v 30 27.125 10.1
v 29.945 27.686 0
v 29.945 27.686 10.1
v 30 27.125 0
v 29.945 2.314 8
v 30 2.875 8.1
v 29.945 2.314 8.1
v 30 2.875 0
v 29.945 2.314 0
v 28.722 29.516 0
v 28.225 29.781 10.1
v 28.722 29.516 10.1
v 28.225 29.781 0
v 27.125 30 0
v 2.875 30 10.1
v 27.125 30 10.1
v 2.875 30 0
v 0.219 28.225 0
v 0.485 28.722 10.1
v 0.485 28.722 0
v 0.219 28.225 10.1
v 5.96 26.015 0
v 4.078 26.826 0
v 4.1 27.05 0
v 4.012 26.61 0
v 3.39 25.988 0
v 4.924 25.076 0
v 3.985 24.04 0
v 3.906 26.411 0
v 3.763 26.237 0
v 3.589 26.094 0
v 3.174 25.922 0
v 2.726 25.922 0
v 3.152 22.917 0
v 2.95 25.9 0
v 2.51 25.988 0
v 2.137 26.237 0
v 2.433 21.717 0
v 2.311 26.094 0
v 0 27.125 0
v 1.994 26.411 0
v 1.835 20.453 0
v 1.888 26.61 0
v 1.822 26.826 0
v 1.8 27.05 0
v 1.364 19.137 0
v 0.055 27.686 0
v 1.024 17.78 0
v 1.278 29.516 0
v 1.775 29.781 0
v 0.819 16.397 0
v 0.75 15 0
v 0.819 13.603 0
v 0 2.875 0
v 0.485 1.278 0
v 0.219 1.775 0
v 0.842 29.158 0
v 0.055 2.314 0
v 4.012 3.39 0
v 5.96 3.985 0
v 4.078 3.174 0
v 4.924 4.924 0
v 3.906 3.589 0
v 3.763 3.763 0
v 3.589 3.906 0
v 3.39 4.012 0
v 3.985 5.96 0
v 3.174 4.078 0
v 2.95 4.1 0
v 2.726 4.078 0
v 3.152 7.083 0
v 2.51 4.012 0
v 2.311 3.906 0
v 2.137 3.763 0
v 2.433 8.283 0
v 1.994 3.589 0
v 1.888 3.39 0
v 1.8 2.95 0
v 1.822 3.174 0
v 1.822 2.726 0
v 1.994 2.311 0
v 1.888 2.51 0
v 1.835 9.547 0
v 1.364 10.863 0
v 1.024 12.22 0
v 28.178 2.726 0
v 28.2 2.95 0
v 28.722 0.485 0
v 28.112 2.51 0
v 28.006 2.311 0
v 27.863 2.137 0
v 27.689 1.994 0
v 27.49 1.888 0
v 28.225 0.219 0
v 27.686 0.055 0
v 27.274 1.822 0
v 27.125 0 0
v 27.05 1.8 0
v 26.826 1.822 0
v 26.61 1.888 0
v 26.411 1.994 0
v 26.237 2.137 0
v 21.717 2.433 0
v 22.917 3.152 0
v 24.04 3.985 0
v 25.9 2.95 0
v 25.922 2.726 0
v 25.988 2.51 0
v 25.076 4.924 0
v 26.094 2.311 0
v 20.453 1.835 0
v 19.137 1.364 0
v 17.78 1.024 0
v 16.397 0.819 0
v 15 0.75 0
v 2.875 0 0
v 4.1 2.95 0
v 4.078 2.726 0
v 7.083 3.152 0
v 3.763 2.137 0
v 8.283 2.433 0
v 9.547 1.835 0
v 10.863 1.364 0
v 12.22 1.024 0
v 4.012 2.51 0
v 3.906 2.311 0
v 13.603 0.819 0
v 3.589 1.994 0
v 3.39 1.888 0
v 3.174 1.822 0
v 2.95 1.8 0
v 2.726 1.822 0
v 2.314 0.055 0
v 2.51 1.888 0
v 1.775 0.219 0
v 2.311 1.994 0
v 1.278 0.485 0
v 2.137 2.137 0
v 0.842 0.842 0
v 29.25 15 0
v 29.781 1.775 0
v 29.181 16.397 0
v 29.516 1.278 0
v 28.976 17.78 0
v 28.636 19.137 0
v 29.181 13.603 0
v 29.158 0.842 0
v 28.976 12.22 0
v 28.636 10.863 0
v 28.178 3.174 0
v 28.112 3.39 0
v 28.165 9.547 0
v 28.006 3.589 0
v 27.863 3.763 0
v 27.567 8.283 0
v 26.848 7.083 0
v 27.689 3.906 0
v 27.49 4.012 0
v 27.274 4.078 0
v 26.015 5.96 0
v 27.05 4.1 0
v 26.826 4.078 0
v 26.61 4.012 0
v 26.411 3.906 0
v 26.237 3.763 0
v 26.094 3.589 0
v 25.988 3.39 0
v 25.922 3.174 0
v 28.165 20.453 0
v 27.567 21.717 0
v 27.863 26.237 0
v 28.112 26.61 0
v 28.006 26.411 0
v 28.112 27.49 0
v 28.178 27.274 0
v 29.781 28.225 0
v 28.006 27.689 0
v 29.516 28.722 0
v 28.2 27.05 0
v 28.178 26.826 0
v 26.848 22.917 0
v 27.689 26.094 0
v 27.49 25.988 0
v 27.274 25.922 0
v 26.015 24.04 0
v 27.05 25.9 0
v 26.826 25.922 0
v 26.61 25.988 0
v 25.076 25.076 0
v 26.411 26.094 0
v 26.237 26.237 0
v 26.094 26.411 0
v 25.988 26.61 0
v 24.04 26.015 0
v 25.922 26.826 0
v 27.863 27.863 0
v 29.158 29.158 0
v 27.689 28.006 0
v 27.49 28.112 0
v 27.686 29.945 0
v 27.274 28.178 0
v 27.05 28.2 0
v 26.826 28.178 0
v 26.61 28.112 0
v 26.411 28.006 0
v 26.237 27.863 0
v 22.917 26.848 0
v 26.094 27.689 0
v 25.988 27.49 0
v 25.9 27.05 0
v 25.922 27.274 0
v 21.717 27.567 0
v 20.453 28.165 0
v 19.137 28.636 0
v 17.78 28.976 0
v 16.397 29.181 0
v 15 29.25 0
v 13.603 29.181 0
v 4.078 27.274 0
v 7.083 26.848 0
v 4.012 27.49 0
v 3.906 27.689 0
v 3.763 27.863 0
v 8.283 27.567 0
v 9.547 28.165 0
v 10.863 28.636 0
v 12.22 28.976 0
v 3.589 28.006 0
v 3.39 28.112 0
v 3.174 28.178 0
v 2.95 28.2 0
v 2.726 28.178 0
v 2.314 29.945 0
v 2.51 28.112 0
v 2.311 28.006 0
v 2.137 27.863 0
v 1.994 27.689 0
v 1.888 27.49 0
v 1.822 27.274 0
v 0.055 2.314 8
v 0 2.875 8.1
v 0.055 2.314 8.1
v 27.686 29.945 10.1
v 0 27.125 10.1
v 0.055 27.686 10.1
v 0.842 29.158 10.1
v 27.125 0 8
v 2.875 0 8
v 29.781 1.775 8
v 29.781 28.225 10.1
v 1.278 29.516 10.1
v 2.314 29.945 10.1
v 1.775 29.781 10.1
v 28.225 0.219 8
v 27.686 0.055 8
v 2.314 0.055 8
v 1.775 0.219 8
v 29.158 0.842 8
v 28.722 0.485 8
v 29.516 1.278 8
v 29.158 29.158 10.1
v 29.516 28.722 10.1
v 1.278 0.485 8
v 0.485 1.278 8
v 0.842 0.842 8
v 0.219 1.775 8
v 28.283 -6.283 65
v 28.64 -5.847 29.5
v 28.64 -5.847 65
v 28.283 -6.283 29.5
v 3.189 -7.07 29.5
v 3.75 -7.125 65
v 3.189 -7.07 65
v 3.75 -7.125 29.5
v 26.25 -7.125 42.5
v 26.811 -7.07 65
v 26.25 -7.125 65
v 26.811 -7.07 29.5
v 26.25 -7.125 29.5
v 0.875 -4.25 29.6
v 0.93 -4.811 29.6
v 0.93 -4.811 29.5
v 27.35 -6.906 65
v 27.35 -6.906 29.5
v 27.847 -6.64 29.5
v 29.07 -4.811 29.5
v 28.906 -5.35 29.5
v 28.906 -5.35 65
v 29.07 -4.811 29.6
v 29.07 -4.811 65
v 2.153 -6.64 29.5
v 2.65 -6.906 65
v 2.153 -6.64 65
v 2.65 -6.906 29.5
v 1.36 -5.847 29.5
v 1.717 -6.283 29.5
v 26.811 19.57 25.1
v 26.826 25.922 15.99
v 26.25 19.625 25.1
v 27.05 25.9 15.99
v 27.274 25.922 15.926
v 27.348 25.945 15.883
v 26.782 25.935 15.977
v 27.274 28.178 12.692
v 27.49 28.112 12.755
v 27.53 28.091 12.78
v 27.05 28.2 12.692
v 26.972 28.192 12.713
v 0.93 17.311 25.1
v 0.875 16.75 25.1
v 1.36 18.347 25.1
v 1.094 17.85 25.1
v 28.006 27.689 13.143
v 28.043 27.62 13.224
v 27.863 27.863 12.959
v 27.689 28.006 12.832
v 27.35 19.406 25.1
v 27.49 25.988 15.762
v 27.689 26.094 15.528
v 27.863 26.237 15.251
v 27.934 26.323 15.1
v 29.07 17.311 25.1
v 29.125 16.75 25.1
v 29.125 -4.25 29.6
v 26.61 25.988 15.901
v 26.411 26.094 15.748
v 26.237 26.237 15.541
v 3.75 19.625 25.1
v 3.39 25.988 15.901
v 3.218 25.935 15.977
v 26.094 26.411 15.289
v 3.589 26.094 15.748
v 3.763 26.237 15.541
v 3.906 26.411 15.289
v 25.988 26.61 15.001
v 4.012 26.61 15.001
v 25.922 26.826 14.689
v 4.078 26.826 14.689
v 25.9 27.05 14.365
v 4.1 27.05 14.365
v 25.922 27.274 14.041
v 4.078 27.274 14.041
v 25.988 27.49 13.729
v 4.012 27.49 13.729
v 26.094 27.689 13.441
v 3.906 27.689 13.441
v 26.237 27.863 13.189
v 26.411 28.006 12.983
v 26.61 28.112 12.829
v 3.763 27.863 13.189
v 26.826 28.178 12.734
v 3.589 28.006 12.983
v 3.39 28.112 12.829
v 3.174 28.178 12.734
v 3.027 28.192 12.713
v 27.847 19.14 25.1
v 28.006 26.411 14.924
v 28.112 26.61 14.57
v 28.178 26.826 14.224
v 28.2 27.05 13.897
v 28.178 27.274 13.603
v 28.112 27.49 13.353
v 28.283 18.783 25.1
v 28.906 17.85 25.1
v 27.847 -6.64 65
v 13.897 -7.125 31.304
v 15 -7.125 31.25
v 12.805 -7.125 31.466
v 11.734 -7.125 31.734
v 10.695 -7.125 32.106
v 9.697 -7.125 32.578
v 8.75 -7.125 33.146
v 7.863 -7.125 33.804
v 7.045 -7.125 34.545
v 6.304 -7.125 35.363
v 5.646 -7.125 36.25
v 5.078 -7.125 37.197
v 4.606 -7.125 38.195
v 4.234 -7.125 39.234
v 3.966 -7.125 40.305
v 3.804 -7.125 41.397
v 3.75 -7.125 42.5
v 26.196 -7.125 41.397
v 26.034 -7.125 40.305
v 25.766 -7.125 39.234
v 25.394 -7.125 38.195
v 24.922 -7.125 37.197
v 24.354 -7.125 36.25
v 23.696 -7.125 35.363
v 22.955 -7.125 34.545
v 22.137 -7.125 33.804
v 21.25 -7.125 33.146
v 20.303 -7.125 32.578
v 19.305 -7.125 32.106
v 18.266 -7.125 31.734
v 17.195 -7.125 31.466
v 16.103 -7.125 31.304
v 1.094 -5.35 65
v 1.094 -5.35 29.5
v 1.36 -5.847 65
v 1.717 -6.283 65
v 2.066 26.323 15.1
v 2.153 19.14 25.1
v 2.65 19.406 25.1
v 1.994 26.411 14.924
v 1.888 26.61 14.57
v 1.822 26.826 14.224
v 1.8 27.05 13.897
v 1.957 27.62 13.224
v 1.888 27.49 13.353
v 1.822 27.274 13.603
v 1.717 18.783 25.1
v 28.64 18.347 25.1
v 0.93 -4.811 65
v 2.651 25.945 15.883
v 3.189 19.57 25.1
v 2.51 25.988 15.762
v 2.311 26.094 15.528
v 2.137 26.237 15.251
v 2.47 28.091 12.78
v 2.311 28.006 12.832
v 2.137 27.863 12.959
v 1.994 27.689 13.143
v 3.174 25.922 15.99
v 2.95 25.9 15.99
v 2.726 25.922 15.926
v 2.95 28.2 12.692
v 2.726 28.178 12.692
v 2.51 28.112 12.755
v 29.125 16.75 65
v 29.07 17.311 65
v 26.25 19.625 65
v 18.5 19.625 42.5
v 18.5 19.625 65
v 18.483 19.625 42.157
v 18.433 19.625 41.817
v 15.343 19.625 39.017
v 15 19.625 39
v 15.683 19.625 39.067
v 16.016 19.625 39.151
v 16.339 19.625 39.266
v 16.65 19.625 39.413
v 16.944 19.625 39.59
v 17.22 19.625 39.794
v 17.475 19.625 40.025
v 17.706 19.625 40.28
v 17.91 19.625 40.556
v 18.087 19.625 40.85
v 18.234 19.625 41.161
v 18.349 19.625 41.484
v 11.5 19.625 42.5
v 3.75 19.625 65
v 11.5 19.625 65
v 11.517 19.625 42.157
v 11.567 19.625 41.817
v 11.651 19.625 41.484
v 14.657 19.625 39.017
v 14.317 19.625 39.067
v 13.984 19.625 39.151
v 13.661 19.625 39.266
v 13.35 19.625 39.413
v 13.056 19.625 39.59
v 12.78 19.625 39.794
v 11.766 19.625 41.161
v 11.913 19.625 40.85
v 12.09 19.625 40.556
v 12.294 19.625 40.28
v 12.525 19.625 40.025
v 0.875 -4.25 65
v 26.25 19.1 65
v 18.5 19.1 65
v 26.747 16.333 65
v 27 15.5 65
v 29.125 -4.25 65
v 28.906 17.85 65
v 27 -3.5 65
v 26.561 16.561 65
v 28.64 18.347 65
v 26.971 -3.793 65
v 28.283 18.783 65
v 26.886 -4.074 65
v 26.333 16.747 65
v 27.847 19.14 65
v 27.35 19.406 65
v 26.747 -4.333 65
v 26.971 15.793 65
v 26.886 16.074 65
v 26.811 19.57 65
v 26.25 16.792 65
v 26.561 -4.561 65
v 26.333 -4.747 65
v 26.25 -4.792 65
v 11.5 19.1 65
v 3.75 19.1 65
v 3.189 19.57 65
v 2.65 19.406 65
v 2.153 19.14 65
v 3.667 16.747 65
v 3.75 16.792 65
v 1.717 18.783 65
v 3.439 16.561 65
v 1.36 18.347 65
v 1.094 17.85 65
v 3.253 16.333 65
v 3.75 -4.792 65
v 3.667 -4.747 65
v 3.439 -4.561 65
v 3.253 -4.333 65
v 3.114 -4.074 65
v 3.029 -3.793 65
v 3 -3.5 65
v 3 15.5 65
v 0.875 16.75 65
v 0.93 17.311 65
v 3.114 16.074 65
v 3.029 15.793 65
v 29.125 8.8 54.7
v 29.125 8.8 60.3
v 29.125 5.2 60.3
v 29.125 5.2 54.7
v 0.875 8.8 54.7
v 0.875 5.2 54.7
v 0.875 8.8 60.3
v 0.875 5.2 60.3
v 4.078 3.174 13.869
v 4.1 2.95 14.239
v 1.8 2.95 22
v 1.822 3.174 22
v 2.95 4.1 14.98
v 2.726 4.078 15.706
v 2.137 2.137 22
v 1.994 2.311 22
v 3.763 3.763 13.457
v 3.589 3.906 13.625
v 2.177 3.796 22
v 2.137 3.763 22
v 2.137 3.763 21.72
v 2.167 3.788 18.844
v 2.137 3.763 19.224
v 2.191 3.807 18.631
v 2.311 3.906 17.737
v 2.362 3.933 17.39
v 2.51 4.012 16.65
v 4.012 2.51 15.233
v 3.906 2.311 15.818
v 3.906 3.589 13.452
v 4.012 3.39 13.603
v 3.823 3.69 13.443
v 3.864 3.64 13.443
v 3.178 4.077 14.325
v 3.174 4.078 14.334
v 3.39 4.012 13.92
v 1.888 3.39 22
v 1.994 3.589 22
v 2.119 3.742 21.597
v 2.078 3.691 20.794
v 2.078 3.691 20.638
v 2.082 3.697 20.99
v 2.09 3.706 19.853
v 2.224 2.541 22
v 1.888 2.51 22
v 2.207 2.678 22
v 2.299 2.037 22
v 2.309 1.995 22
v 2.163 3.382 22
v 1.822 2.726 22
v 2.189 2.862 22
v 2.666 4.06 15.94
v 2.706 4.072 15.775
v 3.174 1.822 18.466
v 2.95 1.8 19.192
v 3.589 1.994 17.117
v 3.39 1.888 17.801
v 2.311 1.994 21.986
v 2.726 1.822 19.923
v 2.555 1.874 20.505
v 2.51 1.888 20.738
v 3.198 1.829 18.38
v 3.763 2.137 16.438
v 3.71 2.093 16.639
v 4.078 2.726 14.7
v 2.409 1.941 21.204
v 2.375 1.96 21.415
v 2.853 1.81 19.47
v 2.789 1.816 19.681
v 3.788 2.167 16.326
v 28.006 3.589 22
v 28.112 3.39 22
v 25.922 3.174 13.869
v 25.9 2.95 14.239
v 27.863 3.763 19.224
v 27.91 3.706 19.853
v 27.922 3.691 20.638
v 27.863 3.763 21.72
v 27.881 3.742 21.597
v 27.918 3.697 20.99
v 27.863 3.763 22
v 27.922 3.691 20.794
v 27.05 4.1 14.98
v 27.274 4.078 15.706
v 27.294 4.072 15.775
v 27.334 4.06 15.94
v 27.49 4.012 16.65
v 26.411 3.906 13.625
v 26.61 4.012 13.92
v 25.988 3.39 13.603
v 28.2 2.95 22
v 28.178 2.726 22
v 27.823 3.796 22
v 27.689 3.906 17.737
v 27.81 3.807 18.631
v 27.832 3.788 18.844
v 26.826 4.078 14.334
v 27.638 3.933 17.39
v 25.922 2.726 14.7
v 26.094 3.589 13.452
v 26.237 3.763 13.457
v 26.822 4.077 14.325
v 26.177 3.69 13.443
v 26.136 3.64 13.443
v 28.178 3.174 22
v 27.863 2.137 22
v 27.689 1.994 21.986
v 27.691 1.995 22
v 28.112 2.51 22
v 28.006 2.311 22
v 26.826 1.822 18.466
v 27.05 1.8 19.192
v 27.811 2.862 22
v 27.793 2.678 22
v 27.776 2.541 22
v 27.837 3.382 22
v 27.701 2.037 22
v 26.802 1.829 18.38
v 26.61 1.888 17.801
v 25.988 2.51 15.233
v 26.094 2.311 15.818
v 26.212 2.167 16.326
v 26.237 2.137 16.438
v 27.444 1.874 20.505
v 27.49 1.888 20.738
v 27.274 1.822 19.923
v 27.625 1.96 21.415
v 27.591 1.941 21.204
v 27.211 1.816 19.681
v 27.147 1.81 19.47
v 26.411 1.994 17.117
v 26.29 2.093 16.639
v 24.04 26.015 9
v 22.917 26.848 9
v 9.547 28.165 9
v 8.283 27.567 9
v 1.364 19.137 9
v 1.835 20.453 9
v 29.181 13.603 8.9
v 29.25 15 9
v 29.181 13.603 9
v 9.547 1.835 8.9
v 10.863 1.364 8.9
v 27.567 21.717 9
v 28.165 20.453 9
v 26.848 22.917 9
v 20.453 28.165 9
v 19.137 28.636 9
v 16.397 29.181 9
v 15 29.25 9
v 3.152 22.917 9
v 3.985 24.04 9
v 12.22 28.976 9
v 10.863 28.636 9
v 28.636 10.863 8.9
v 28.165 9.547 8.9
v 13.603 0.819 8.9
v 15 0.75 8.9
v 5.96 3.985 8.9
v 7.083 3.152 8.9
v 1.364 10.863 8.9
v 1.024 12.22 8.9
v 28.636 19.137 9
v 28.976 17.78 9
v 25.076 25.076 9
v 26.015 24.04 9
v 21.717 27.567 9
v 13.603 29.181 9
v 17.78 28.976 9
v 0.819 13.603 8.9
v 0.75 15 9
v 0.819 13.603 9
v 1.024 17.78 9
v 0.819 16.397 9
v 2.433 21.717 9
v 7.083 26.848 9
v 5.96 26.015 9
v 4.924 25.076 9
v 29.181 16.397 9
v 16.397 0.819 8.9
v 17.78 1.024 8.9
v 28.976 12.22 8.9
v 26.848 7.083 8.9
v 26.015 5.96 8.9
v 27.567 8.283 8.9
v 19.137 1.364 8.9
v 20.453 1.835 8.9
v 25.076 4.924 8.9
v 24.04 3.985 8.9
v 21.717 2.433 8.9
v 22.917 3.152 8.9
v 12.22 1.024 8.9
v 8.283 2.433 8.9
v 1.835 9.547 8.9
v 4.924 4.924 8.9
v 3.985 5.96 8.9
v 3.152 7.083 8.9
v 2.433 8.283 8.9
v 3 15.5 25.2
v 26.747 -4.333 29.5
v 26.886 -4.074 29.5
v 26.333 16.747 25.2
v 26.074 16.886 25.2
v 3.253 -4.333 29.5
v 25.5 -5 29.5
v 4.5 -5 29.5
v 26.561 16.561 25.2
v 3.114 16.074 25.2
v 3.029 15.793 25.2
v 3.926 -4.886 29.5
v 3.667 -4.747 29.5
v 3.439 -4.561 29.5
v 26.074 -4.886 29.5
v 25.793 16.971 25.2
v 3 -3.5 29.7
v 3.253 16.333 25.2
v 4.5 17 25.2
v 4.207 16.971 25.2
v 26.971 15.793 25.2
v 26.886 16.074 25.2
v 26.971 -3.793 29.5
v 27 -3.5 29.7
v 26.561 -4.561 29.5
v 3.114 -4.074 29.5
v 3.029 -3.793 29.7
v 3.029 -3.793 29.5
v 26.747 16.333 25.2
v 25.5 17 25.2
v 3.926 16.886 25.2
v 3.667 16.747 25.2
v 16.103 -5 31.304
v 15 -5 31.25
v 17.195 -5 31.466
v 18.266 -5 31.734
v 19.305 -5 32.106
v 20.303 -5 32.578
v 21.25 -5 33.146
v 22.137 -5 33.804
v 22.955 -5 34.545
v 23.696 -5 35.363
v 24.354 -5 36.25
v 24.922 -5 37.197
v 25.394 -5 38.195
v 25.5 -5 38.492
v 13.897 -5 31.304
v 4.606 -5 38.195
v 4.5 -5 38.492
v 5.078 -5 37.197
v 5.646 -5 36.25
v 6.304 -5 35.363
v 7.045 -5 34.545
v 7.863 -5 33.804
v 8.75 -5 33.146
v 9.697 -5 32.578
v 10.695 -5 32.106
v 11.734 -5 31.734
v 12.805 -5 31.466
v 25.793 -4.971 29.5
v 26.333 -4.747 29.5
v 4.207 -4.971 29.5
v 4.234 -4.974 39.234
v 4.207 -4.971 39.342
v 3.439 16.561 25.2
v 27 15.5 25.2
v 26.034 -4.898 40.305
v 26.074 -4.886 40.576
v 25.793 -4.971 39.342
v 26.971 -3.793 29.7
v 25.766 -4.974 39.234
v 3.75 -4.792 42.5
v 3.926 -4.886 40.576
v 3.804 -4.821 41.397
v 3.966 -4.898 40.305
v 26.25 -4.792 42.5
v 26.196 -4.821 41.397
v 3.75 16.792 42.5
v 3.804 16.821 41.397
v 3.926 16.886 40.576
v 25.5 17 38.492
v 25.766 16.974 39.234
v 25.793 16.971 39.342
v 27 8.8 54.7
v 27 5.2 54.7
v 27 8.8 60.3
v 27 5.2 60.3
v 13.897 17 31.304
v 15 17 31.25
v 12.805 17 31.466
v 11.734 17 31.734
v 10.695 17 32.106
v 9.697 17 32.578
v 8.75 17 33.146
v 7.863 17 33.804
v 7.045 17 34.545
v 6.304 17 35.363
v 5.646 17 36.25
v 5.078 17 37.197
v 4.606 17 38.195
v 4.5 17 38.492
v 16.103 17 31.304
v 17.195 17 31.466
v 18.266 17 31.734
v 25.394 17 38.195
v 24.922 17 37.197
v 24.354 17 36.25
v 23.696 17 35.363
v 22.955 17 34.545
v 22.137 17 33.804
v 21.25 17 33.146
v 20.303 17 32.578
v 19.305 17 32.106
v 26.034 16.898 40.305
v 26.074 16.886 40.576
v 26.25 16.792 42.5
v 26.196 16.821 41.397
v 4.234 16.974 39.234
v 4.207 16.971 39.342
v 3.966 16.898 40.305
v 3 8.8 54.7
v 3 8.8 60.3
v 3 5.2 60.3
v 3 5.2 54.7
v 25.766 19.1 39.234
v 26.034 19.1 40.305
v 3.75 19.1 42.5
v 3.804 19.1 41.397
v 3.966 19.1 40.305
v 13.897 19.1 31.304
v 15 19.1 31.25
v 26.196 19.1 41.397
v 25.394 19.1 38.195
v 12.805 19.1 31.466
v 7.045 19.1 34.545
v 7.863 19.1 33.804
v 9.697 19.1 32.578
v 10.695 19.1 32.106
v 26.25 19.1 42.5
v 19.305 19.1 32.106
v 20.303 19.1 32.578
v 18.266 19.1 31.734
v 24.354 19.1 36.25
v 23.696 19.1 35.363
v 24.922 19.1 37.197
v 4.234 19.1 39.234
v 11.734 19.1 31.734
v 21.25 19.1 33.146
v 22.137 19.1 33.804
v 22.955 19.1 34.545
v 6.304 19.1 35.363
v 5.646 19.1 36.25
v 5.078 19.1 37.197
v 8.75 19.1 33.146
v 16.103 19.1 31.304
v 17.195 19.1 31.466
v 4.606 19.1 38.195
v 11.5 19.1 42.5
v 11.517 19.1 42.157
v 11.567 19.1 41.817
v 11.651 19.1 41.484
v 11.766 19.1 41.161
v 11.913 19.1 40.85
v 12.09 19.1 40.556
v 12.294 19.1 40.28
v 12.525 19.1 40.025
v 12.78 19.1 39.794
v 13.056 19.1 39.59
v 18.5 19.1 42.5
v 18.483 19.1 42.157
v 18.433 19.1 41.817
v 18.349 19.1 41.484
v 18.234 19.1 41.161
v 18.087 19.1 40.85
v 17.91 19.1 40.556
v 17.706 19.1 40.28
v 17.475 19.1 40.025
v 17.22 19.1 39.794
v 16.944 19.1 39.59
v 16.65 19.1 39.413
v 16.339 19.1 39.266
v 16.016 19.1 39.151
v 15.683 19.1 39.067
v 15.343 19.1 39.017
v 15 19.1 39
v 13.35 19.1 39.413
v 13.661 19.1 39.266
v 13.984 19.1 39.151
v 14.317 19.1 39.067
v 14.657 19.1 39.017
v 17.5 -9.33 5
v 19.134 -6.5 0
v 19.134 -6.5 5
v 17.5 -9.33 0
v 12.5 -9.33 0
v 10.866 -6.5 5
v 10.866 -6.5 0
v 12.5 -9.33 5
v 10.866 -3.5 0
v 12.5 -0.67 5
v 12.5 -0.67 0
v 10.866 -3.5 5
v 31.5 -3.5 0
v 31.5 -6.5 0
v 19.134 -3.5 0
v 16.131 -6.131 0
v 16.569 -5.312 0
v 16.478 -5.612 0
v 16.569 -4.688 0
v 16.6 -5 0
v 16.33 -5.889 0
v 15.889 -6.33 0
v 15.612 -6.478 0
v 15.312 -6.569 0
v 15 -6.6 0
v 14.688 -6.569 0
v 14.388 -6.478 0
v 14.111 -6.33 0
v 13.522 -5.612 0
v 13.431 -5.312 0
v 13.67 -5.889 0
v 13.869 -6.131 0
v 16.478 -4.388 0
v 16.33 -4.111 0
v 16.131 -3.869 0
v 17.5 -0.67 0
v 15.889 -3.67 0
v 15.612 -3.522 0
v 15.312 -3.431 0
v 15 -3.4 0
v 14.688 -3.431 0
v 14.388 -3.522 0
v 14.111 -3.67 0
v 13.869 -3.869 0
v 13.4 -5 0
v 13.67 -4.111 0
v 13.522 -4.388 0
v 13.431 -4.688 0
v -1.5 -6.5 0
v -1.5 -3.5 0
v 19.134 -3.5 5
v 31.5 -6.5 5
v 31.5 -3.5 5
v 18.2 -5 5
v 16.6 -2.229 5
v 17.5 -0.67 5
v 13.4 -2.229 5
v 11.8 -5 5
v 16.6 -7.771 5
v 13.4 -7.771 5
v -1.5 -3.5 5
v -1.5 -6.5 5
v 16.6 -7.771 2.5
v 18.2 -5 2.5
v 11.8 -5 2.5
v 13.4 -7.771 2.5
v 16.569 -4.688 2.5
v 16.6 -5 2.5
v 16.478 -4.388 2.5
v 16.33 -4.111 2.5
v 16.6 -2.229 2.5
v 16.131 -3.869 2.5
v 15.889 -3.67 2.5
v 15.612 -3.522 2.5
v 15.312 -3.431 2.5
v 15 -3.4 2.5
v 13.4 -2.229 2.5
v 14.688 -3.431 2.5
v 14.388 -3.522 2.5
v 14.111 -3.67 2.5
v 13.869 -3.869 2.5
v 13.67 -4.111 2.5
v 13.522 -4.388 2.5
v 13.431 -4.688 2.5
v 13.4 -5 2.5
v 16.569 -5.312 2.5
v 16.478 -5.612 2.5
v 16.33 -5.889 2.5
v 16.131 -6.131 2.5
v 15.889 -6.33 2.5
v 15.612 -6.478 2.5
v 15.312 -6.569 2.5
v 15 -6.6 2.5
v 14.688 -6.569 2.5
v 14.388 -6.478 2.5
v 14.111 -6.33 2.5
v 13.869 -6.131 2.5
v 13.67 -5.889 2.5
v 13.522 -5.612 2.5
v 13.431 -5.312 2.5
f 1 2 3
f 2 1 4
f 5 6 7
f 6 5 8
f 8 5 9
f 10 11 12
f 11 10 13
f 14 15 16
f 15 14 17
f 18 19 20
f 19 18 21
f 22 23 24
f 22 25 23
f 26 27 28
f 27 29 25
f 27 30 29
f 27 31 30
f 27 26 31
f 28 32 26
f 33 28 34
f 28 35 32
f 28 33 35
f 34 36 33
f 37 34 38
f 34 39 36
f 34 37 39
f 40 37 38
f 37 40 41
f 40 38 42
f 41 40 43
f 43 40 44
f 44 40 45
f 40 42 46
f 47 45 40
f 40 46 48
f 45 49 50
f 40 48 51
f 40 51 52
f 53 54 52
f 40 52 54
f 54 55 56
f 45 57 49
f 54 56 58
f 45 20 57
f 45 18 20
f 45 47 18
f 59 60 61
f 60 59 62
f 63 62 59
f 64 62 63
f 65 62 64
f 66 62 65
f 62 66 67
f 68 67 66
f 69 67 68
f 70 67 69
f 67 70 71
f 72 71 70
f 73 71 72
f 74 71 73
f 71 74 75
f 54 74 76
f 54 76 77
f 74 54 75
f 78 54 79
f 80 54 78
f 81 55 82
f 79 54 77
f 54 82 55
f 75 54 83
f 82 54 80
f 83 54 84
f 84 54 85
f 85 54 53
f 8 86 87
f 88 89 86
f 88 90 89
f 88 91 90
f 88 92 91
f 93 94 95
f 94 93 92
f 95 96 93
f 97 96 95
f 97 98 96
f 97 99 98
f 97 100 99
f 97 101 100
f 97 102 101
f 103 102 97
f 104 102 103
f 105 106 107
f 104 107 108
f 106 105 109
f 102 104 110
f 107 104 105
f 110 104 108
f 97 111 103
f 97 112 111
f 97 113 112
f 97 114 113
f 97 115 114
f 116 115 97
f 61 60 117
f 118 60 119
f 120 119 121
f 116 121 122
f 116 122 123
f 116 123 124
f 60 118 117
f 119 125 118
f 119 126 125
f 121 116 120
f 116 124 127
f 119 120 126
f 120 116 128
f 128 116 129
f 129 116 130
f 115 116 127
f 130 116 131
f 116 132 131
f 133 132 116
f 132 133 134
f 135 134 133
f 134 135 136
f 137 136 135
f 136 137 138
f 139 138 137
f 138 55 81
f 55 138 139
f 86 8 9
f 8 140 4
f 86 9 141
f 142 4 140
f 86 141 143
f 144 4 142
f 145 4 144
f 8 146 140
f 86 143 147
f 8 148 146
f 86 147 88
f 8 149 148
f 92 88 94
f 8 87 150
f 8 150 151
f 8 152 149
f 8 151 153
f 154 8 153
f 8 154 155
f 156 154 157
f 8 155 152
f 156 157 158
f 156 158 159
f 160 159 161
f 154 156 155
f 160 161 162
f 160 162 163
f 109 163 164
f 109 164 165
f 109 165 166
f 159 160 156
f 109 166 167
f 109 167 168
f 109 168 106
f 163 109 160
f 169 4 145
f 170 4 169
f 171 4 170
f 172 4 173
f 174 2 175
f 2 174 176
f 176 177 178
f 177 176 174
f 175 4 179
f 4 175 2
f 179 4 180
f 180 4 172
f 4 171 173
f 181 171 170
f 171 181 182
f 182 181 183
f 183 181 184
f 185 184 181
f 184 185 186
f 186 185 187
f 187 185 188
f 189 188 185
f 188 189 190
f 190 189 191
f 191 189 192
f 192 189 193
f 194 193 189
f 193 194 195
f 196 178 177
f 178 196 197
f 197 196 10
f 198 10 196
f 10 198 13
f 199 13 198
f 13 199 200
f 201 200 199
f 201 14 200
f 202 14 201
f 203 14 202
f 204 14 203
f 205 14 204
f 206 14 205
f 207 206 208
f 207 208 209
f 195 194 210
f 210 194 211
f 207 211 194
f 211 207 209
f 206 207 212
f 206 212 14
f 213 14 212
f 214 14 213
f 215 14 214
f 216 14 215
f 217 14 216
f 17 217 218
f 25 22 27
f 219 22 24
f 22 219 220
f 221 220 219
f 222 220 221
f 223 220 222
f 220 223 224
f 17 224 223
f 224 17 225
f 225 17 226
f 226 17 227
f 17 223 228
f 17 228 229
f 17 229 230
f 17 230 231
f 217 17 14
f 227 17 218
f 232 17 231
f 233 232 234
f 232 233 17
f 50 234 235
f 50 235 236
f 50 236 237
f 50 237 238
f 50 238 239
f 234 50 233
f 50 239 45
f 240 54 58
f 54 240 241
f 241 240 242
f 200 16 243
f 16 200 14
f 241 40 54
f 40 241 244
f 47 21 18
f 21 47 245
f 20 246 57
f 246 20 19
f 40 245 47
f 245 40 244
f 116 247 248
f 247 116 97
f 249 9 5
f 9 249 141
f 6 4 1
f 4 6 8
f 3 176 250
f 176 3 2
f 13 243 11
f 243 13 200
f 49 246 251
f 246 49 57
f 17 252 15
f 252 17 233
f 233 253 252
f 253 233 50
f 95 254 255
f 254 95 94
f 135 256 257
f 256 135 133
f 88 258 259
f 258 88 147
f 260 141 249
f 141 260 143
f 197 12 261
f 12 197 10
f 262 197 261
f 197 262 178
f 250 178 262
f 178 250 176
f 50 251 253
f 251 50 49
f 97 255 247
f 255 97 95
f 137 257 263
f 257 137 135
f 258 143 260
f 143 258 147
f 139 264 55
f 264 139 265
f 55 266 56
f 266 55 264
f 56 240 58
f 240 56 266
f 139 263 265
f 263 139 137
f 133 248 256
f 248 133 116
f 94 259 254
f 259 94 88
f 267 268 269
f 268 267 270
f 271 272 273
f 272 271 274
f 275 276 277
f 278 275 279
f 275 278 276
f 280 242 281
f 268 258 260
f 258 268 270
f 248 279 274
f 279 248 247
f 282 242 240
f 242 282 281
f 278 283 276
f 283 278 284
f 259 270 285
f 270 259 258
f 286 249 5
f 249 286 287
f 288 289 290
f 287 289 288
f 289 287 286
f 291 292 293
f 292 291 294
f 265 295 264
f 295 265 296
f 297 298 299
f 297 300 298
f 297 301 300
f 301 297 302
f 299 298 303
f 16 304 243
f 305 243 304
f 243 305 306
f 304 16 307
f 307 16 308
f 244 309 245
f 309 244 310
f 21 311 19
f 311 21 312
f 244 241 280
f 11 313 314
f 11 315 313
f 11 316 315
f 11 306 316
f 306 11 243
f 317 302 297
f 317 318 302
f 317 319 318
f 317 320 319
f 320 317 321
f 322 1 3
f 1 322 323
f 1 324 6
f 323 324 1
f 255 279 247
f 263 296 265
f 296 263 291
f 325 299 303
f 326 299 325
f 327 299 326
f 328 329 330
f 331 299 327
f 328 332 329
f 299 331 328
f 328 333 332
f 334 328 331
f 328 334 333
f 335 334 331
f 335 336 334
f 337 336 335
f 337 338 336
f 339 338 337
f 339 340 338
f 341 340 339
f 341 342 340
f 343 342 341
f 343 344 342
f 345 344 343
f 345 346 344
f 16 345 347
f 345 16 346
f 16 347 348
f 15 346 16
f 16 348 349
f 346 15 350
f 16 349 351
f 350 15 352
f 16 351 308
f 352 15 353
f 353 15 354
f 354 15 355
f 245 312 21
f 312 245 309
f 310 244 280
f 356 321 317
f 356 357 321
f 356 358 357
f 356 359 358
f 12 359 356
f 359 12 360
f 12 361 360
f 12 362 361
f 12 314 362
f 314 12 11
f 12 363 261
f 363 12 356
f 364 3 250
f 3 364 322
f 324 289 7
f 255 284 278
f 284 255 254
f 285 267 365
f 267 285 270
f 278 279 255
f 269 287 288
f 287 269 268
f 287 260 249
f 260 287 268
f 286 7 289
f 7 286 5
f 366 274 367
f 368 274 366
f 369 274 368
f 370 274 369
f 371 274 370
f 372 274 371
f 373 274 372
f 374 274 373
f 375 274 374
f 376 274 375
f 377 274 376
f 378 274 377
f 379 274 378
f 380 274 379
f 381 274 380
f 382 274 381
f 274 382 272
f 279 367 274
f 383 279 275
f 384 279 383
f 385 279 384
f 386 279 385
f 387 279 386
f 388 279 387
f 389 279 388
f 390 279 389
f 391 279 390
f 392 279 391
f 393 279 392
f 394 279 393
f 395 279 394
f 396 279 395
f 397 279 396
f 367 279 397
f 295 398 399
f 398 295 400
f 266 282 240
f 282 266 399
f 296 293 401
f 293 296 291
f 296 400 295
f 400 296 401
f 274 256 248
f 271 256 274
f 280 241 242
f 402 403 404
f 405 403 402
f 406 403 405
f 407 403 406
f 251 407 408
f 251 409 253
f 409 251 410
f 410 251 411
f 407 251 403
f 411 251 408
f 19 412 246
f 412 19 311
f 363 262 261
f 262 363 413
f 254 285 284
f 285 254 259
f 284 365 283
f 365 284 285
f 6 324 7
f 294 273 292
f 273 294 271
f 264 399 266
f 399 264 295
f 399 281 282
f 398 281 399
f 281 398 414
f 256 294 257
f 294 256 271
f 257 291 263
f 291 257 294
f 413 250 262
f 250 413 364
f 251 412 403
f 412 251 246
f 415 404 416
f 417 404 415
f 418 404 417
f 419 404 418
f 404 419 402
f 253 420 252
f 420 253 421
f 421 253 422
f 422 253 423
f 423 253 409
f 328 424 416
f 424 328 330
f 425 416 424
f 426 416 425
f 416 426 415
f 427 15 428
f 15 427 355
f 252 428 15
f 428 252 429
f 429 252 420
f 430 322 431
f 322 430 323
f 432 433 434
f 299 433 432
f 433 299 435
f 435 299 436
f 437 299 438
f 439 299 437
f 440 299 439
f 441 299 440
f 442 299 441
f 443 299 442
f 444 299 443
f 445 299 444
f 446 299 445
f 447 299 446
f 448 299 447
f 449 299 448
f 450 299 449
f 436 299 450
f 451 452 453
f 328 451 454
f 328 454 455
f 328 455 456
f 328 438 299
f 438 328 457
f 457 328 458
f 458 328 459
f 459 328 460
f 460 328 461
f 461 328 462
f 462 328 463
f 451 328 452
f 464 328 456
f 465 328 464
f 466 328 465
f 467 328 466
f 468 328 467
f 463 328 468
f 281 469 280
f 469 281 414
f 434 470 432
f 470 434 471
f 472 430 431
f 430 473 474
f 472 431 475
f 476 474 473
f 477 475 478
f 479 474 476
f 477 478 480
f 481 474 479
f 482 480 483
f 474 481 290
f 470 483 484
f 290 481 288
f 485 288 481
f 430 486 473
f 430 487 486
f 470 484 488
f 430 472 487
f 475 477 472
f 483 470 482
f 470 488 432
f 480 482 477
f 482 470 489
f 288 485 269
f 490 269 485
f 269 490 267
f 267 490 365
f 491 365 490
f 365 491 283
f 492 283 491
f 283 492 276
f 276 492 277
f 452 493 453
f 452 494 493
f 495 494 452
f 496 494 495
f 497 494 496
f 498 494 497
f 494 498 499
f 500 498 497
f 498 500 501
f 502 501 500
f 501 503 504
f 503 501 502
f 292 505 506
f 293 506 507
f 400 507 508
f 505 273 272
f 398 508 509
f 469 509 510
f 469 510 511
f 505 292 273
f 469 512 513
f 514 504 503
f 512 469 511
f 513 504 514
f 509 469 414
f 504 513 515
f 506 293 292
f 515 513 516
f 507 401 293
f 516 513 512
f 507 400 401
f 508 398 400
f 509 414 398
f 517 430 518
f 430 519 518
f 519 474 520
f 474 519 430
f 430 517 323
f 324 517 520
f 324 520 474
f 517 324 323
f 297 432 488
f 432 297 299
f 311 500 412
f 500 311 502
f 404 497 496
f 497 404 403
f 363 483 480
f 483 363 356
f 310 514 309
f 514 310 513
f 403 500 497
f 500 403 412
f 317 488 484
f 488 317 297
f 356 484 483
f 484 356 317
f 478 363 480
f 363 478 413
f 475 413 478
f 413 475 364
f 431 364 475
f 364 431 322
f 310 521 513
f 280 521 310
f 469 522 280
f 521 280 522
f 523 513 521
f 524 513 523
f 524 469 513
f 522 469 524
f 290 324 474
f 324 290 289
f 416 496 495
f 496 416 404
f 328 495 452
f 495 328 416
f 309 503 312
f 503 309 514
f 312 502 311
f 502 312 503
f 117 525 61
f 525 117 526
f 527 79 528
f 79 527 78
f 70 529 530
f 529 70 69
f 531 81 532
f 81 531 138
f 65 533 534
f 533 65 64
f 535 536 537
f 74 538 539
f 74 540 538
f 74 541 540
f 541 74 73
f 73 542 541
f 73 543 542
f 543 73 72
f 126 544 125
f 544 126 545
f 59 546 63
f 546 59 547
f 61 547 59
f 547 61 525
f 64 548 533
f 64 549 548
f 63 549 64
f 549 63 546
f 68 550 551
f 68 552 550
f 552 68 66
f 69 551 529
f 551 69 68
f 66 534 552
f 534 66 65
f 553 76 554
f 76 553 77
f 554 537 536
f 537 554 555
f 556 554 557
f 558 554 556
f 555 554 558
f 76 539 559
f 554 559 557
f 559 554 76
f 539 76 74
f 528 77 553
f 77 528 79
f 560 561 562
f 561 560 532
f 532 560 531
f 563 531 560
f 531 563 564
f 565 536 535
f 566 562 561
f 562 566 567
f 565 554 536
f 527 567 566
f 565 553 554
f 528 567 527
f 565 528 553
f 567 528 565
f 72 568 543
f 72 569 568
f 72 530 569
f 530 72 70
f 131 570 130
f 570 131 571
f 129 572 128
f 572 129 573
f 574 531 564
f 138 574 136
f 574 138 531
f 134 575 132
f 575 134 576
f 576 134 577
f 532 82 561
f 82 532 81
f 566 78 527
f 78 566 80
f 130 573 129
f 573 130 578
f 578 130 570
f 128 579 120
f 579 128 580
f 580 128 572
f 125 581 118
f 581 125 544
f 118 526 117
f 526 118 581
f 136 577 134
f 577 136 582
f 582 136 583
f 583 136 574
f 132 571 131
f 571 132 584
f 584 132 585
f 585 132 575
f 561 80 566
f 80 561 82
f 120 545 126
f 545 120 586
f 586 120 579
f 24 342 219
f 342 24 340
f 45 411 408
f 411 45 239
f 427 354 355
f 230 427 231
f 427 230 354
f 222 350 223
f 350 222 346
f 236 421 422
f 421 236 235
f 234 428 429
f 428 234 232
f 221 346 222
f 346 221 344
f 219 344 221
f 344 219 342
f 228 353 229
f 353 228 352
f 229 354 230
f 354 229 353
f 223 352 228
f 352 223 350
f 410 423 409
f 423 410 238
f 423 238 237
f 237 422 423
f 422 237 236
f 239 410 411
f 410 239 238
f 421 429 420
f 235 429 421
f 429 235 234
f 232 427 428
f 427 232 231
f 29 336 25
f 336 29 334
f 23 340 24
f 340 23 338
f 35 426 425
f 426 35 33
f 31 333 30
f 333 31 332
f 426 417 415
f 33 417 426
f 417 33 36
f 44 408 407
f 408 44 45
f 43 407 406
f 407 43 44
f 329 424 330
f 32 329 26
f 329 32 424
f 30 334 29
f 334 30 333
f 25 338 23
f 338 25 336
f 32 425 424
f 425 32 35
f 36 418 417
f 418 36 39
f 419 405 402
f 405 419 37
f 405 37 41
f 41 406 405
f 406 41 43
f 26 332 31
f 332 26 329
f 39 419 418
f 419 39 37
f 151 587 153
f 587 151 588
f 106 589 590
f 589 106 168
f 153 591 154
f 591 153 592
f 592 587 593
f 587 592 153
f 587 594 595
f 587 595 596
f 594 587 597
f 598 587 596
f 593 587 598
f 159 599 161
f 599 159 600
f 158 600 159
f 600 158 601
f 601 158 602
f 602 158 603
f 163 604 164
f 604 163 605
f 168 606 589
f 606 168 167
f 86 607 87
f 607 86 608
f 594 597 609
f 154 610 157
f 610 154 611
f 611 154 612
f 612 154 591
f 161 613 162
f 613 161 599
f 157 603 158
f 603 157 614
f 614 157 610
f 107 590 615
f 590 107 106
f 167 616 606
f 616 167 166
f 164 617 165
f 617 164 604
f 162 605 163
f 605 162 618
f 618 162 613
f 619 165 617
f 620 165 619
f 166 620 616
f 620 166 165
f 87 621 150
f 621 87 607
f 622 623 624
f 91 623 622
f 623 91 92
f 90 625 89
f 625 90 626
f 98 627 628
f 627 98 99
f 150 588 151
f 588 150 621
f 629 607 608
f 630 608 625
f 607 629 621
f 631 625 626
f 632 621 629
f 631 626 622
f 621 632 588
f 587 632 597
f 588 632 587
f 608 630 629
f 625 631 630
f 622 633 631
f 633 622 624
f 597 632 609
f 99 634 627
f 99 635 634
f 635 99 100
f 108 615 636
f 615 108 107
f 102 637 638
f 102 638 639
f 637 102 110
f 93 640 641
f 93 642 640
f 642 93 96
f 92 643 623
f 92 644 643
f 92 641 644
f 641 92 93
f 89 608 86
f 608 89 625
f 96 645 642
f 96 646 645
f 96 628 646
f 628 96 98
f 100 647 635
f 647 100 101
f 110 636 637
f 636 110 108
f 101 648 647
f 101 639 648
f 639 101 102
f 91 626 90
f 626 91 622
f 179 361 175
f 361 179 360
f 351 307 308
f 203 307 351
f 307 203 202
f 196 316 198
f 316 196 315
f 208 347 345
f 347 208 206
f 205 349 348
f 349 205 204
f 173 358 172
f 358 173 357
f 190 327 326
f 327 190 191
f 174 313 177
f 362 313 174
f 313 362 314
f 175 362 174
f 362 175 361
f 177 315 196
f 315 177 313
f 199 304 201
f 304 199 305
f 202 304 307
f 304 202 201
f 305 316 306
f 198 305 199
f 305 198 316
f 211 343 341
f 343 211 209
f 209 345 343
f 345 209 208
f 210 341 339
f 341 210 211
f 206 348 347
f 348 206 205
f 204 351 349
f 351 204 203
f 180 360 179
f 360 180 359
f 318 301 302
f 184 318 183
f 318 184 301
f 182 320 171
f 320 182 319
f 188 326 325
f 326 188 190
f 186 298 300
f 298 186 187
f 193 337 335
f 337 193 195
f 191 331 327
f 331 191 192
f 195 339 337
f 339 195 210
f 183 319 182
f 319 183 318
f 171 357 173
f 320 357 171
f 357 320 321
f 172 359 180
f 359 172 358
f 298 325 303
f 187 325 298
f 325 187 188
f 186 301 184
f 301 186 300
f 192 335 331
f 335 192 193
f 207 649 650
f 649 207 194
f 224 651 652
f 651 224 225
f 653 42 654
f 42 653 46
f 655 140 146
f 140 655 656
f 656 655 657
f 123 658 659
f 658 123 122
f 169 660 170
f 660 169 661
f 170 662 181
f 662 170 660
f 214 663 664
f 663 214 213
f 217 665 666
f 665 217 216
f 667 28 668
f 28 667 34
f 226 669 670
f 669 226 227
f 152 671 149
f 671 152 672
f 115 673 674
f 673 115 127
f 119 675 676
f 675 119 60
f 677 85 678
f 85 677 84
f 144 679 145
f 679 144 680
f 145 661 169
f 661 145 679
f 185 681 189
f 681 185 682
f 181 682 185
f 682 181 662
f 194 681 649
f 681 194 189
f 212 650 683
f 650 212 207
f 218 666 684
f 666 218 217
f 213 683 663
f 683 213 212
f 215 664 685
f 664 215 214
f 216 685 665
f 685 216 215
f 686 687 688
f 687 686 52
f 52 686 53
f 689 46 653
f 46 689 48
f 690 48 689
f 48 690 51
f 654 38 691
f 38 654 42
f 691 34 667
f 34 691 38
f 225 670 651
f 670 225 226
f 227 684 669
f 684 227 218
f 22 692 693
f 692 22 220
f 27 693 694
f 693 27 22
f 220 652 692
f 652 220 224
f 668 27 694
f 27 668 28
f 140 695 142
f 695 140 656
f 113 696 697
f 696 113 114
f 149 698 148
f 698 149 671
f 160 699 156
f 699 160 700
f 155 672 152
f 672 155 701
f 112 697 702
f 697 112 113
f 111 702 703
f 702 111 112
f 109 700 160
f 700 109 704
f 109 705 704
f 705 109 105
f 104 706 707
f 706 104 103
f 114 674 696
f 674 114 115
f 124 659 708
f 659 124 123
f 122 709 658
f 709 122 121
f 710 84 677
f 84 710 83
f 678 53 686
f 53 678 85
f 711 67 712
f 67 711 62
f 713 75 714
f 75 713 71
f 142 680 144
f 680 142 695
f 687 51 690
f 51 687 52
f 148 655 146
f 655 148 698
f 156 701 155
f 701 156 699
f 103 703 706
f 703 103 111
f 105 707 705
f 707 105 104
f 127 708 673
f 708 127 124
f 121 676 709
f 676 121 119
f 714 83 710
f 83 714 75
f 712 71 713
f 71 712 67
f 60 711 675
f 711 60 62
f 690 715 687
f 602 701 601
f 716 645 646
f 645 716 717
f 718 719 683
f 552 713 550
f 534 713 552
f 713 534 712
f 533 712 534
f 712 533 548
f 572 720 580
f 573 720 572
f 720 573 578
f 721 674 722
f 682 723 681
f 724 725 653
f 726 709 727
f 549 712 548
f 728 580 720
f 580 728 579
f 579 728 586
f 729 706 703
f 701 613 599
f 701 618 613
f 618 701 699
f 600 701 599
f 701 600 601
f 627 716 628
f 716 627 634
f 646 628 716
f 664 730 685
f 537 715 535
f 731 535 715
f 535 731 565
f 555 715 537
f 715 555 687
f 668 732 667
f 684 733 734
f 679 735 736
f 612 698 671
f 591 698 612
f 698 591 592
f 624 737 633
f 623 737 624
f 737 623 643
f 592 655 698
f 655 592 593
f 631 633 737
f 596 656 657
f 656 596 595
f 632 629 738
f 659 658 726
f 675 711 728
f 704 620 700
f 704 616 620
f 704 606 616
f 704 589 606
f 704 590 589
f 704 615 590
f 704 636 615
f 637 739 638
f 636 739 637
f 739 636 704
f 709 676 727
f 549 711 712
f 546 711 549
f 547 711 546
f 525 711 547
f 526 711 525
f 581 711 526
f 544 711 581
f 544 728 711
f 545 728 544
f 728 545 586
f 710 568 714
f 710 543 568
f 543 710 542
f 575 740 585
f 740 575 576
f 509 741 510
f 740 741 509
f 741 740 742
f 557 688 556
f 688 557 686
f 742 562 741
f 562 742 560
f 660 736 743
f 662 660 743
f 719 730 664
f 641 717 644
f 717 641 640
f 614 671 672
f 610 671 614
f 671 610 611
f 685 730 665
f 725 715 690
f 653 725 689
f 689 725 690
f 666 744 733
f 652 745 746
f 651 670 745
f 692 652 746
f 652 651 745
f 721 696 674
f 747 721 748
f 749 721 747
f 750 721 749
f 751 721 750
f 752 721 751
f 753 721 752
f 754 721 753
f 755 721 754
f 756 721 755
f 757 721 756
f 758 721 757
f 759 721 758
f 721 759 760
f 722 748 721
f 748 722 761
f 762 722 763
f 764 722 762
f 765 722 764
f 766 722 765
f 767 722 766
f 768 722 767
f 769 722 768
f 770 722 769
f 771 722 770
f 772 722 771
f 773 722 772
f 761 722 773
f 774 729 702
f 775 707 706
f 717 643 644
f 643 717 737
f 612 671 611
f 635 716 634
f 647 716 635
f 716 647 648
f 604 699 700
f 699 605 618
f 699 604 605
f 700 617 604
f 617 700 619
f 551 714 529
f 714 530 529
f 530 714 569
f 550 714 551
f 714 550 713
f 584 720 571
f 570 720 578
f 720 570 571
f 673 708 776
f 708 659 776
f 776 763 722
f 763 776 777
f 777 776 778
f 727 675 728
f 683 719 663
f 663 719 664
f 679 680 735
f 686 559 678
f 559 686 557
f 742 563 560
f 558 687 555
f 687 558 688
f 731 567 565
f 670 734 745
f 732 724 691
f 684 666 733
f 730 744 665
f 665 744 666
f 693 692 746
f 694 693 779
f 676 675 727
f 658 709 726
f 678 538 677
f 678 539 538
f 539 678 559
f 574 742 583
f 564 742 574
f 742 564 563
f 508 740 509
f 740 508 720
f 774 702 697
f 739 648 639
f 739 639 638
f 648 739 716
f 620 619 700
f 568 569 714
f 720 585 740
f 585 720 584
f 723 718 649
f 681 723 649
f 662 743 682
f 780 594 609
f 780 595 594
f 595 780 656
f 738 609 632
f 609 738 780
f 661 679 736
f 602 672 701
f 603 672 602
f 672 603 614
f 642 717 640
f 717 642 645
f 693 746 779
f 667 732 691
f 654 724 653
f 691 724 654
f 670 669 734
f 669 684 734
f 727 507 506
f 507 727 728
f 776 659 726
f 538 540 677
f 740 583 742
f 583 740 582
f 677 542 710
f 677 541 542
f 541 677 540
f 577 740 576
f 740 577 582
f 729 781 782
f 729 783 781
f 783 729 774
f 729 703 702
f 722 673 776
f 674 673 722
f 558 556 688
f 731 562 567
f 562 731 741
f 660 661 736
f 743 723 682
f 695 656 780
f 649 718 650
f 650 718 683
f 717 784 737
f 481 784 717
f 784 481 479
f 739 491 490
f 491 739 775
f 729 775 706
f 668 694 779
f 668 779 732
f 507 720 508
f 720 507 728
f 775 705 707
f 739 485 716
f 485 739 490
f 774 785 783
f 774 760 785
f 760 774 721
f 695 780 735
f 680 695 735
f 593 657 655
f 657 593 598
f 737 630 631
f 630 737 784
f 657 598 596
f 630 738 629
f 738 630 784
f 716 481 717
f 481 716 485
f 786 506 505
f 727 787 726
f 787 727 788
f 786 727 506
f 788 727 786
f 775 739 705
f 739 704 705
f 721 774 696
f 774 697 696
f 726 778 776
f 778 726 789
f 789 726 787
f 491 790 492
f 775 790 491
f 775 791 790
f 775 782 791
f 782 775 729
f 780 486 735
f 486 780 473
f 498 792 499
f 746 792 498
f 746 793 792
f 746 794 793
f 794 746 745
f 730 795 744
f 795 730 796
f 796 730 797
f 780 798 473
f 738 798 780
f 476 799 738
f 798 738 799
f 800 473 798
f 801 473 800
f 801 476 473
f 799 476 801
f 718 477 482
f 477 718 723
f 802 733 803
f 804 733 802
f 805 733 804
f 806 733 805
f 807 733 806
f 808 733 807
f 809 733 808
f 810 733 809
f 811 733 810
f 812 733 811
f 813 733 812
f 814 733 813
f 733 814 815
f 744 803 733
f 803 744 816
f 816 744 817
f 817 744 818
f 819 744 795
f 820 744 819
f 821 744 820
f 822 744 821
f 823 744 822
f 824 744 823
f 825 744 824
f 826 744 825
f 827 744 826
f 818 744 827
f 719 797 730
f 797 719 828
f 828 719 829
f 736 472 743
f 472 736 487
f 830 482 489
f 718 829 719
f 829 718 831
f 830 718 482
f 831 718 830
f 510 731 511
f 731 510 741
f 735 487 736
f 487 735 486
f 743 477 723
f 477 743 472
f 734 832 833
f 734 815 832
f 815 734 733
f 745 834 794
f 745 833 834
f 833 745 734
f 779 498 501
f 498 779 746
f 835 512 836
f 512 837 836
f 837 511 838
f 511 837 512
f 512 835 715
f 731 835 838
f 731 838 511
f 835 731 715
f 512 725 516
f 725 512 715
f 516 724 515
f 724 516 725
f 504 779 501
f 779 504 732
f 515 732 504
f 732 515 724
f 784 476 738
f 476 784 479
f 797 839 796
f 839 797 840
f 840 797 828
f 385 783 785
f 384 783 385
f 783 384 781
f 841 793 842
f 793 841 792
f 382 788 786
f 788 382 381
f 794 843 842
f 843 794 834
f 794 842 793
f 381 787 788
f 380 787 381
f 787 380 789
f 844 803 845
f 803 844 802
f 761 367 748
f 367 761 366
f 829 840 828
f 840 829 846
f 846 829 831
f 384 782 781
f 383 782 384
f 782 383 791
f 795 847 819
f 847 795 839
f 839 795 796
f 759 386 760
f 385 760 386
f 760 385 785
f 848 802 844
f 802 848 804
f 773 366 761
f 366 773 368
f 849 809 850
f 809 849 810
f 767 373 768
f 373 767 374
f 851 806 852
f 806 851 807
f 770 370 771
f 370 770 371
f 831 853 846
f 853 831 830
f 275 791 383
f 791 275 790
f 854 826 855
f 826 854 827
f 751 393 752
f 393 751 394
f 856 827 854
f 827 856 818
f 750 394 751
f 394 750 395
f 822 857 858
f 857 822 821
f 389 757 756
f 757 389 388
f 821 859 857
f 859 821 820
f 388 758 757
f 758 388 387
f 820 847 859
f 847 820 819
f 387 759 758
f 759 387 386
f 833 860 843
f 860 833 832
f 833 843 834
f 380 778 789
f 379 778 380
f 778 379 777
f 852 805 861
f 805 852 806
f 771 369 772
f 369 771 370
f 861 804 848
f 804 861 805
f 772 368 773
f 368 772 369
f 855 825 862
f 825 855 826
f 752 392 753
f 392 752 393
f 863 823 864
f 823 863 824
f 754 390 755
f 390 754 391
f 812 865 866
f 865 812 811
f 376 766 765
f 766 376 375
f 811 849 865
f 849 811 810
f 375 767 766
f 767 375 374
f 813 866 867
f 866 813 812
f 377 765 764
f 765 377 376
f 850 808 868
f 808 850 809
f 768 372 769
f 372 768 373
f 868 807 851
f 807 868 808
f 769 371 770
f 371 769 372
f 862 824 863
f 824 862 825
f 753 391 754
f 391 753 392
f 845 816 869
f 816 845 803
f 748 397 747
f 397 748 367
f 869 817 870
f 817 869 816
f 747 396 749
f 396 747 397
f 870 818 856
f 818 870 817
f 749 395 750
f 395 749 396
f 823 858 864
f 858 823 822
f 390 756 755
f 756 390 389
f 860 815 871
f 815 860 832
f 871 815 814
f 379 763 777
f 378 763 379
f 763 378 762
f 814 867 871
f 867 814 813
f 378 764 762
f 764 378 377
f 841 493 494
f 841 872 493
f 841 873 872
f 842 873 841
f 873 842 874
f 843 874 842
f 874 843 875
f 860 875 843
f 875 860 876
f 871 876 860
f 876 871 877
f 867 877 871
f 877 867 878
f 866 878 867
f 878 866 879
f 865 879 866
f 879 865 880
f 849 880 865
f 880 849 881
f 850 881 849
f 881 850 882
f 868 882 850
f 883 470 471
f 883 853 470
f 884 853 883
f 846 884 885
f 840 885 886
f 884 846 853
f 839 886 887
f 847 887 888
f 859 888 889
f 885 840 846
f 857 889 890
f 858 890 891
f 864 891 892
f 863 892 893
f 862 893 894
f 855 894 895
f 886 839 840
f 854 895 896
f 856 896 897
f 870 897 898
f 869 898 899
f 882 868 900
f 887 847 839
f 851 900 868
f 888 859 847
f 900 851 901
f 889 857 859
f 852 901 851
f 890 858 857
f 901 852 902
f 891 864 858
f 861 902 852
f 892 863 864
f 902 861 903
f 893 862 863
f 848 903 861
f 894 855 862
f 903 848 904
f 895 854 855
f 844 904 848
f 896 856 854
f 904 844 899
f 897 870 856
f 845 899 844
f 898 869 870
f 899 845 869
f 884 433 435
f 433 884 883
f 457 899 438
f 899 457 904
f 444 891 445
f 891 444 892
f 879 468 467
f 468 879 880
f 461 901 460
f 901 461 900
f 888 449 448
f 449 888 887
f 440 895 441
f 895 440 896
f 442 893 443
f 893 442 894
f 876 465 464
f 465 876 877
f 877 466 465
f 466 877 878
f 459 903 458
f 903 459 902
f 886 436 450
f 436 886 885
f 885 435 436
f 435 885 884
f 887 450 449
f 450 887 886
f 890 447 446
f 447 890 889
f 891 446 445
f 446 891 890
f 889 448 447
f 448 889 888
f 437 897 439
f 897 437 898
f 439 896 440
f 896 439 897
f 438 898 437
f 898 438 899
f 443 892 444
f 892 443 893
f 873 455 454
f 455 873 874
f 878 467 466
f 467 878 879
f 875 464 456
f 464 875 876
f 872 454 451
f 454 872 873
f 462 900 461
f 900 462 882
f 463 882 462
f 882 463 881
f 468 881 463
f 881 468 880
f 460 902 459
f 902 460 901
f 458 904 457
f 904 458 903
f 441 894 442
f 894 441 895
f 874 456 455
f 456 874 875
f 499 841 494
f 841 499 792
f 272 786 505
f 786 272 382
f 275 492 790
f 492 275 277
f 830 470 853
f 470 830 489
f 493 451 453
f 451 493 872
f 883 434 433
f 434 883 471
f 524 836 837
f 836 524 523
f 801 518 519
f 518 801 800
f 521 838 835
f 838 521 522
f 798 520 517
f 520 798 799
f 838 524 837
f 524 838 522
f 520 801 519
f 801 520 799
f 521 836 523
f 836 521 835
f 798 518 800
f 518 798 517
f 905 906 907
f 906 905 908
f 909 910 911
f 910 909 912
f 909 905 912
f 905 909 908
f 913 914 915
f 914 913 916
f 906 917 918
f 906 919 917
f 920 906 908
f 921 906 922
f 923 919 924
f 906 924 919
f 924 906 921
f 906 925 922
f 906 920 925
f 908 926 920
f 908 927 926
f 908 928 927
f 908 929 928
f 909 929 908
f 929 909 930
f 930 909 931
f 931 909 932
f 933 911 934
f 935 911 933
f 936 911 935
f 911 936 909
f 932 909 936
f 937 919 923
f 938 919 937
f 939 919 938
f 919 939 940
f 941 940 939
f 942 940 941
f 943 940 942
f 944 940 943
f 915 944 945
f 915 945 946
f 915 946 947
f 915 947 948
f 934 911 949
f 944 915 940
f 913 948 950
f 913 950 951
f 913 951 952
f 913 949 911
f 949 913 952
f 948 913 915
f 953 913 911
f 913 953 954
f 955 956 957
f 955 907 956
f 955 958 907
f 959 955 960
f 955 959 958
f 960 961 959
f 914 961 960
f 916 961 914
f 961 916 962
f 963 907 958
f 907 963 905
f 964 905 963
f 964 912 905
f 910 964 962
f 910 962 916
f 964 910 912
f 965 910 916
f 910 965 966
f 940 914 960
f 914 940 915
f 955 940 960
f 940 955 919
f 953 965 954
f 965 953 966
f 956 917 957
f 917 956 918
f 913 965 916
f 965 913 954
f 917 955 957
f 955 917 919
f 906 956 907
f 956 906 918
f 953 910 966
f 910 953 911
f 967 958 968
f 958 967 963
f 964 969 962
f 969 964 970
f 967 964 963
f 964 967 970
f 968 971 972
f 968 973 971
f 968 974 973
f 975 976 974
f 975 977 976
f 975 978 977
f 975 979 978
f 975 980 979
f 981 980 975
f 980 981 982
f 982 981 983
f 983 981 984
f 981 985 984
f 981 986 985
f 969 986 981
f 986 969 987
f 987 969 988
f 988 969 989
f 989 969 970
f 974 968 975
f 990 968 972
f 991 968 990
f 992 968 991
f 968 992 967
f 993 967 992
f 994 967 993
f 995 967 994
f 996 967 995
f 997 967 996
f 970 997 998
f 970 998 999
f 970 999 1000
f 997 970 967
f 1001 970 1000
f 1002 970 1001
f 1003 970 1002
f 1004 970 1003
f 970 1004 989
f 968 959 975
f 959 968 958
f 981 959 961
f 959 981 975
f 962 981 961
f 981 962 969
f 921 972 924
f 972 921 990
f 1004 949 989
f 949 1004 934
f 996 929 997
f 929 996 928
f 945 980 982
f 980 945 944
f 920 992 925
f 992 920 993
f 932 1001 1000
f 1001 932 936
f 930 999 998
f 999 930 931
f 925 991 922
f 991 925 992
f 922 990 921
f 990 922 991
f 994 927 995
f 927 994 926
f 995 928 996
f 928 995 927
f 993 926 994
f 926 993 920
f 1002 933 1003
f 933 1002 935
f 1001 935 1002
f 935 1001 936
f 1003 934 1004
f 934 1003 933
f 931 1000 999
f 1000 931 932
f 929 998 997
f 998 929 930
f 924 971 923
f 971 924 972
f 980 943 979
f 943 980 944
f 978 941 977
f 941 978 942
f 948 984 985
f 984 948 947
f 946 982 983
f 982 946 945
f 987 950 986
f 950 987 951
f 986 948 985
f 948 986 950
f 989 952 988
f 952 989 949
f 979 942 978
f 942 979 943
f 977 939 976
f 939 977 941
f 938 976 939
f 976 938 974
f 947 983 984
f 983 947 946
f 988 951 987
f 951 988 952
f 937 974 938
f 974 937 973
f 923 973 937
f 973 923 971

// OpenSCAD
// file: NormParts.scad
res = 32;

module igidur5mm() {
    d1 = 5;
    d2 = 7;
    b1 = 4.6;
    color("Yellow") render(convexity=4) {
        difference() {
            cylinder(d=d2, h=b1, $fn=res);
            translate([0, 0, -1]) cylinder(d=d1, h=b1+2, $fn=res);
        }
    }
}

module igidur8mm() {
    d1 = 8;
    d2 = 10;
    b1 = 8;
    color("Yellow") render(convexity=4) {
        difference() {
            cylinder(d=d2, h=b1, $fn=res);
            translate([0, 0, -1]) cylinder(d=d1, h=b1+2, $fn=res);
        }
    }
}

module pulley20teeth(inner_d) {
    color("Silver") render(convexity=4) {
        difference() {
            union() {
                cylinder(d=17, h=8, $fn=res);
                cylinder(d=14, h=15.95, $fn=res);
                translate([0, 0, 15]) cylinder(d=17, h=0.95, $fn=res);
            }
            translate([0, 0, -1]) cylinder(d=inner_d, h=15.95+2, $fn=res);
        }
    }
}

module jhead_hotend() {
    color("Silver") render(convexity=6) {
        cylinder(h=12.77, d=12, $fn=res);
        cylinder(h=2.8, d=16, $fn=res);
        translate([0, 0, 6+2.8]) cylinder(h=12.77-6-2.8, d=16, $fn=res);
        translate([0, 0, 12.77]) cylinder(h=6.2, d=11.42, $fn=6);
        for(i=[0:10]) {
            translate([0, 0, -4.2-26+i*(26/11)]) cylinder(h=1.14, d=22.3, $fn=res);
        }
        translate([0, 0, -3]) cylinder(h=1.14, d=16, $fn=res);
        translate([0, 0, -4.2-26]) cylinder(h=26+4.2, d1=11.4, d2=7.6, $fn=res);
        translate([0, 0, -48]) cylinder(h=72.7, d=3, $fn=res);
        translate([0, 5, -4.2-26-3.34-12/2]) cube([15.86, 20, 12], center=true);
        translate([0, 0, -48]) cylinder(h=3, d=8, $fn=6);
        translate([0, 0, -48-2.65]) cylinder(h=2.65, d1=0.5, d2=4.9, $fn=res);
        translate([0, 0, 72.7-48-1.5]) cylinder(h=1.5, d=10, $fn=res);
    }
}

module heatbed() {
    color("Silver") render(convexity=4) difference() {
        union() {
            for(i=[0, 1]) {
                for(j=[0, 1]) {
                    translate([5+i*(219.5-10), 5+j*(219.5-10), 0]) cylinder(r=5, h=3.1, $fn=res);
                }
            }
            translate([5, 0, 0]) cube([219.5-10, 219.5, 3.1]);
            translate([0, 5, 0]) cube([219.5, 219.5-10, 3.1]);
        }
        for(i=[0, 1]) {
            for(j=[0, 1]) {
                translate([0, 0, 0]) {
                    translate([5.7+i*(219.5-11.4), 5.7+j*(219.5-11.4), 3.1-1.86]) cylinder(d=6, h=3, $fn=res);
                    translate([5.7+i*(219.5-11.4), 5.7+j*(219.5-11.4), -0.5]) cylinder(d=3.37, h=5, $fn=res);
                }
            }
        }
    }
}

module spindle() {
    color("Silver") cylinder(d=8, h=300, $fn=res);
}

module spindle_screw() {
    color("Silver") difference() {
        union() {
            translate([0, 0, -5.15]) cylinder(d=10, h=15, $fn=res);
            translate([0, 0, -3.55]) cylinder(d=21.92, h=3.55, $fn=res);
        }
        translate([0, 0, -6]) cylinder(d=7, h=17, $fn=res);
        for(i=[-1, 1]) {
            translate([i*(21.92/2-1.2-3.6/2), 0, -4]) cylinder(d=3.6, h=5, $fn=res);
            translate([0, i*(21.92/2-1.2-3.6/2), -4]) cylinder(d=3.6, h=5, $fn=res);
        }
    }
}

module ballbearing608() {
    color("Silver") render(convexity=4) difference() {
        cylinder(d=22, h=7, $fn=res);
        translate([0, 0, -1]) cylinder(d=8, h=9, $fn=res);
    }
}
// main file
use <NormParts.scad>

module airchannel() {
    difference() {
        union() {
            hull() {
                for(i=[0, 1]) {
                    for(j=[0, 1]) {
                        translate([5.75/2+i*(30-5.75), 5.75/2+j*(30-5.75), 0]) cylinder(d=5.75, h=10-2*(1-j), $fn=32);
                    }
                }
            }
            hull() {
                for(i=[0, 1]) {
                    for(j=[0, 1]) {
                        translate([5.75/2+i*(30-5.75), 5.75/2+j*(30-5.75), 10-2*(1-j)]) cylinder(d=5.75, h=0.1, $fn=32);
                        translate([(30-22.5)/2+i*22.5, (30-22.5)/2-8+j*21, 25+4.5*(1-j)]) cylinder(d=5.75, h=0.1, $fn=32);
                    }
                }
            }
            hull() {
                for(i=[0, 1]) {
                    for(j=[0, 1]) {
                        translate([(30-22.5)/2+i*22.5, (30-22.5)/2-8+j*21, 25+4.5*(1-j)]) cylinder(d=5.75, h=40-4.5*(1-j), $fn=32);
                    }
                }
            }
        }
        for(i=[0, 1]) {
            for(j=[0, 1]) {
                 translate([2.95+i*24.1, 2.95+j*24.1, -1]) cylinder(d=2.3, h=23, $fn=32);
            }
        }
        translate([15, 15, -1]) cylinder(d=28.5, h=10, $fn=64);
        hull() {
            translate([15, 15, 8.9]) cylinder(d=28.5, h=0.1, $fn=64);
            for(i=[0, 1]) {
                for(j=[0, 1]) {
                    translate([4.5+i*21, -3.5+j*19, 25+4.5*(1-j)]) cylinder(d=3, h=0.2, $fn=32);
                }
            }
        }
        hull() {
            for(i=[0, 1]) {
                for(j=[0, 1]) {
                    translate([4.5+i*21, -3.5+j*19, 25+4.5*(1-j)]) cylinder(d=3, h=50, $fn=32);
                }
            }
        }
        translate([15, -12, 42.5]) rotate([-90, 0, 0]) cylinder(d=22.5, h=31.1, $fn=64);
        translate([15, -12, 42.5]) rotate([-90, 0, 0]) cylinder(d=7, h=90, $fn=64);
        translate([(30-22.5)/2, -12, 42.5]) cube([22.5, 31.1, 50]);
        translate([11.5, -12, 42.5]) cube([7, 90, 50]);
        translate([15, 7, 57.5]) cube([33, 3.6, 5.6], center=true);
    }
}

module airchannel_clamp() {
    difference() {
        union() {
            cylinder(d=10, h=5, $fn=6);
            translate([0, 0, 5/2]) cube([33, 3, 5], center=true);
        }
        translate([0, 0, -1]) cylinder(d=6.4, h=3.5, $fn=6);
        translate([0, 0, -1]) cylinder(d=3.2, h=10, $fn=32);
    }
}

airchannel();
//translate([15, 7, 55]) airchannel_clamp();
//translate([15, -12, 42.5]) rotate([90, 180, 0]) jhead_hotend();

rotate([180, 0, 0]) translate([15, 5, -5]) airchannel_clamp();
